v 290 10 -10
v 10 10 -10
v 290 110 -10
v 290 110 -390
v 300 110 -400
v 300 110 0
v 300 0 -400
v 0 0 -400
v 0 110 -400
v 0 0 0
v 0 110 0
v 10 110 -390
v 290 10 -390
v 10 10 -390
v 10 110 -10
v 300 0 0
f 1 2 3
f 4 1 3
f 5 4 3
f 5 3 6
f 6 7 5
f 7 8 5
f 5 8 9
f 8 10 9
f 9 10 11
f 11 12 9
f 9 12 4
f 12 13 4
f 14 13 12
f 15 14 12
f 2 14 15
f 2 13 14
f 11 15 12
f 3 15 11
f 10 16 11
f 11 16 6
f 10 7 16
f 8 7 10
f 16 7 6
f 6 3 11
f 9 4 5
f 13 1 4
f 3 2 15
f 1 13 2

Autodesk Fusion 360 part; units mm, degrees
sketch "Sketch1" plane through (0, 0, 0) normal (0, 1, 0) x (1, 0, 0)
  line L0 (0, 0) -> (300, 0)
  line L1 (300, 0) -> (300, 400)
  line L2 (300, 400) -> (0, 400)
  line L3 (0, 400) -> (0, 0)
  line L4 (0, 0) -> (10, 0)
  line L5 (0, 0) -> (9.8603, 0)
  line L6 (0, 10) -> (0, 0)
  line L7 (9.8603, 10) -> (289.8603, 10)
  line L8 (289.8603, 10) -> (289.8603, 390)
  line L9 (289.8603, 390) -> (9.8603, 390)
  line L10 (9.8603, 390) -> (9.8603, 10)
extrude "Extrude1" add sketch "Sketch1" along normal blind 10 contours L0 L1 L2 L3 L4 L5 L6 | L7 L8 L9 L10
sketch "Sketch2" plane through (0, 10, 0) normal (0, 1, 0) x (-1, 0, 0)
  line L0 (0, -400) -> (0, 0)
  line L1 (0, 0) -> (-300, 0)
  line L2 (-300, 0) -> (-300, -400)
  line L3 (-300, -400) -> (0, -400)
  line L4 (0, 0) -> (-10, 0)
  line L5 (0, -10) -> (0, 0)
  line L6 (-10, -10) -> (-290, -10)
  line L7 (-290, -10) -> (-290, -390)
  line L8 (-290, -390) -> (-10, -390)
  line L9 (-10, -390) -> (-10, -10)
  line L10 (0, 0) -> (-300, 0)
  line L11 (-300, 0) -> (-300, -400)
  line L12 (-300, -400) -> (0, -400)
  line L13 (0, -400) -> (0, 0)
extrude "Extrude2" add sketch "Sketch2" along normal blind 100
